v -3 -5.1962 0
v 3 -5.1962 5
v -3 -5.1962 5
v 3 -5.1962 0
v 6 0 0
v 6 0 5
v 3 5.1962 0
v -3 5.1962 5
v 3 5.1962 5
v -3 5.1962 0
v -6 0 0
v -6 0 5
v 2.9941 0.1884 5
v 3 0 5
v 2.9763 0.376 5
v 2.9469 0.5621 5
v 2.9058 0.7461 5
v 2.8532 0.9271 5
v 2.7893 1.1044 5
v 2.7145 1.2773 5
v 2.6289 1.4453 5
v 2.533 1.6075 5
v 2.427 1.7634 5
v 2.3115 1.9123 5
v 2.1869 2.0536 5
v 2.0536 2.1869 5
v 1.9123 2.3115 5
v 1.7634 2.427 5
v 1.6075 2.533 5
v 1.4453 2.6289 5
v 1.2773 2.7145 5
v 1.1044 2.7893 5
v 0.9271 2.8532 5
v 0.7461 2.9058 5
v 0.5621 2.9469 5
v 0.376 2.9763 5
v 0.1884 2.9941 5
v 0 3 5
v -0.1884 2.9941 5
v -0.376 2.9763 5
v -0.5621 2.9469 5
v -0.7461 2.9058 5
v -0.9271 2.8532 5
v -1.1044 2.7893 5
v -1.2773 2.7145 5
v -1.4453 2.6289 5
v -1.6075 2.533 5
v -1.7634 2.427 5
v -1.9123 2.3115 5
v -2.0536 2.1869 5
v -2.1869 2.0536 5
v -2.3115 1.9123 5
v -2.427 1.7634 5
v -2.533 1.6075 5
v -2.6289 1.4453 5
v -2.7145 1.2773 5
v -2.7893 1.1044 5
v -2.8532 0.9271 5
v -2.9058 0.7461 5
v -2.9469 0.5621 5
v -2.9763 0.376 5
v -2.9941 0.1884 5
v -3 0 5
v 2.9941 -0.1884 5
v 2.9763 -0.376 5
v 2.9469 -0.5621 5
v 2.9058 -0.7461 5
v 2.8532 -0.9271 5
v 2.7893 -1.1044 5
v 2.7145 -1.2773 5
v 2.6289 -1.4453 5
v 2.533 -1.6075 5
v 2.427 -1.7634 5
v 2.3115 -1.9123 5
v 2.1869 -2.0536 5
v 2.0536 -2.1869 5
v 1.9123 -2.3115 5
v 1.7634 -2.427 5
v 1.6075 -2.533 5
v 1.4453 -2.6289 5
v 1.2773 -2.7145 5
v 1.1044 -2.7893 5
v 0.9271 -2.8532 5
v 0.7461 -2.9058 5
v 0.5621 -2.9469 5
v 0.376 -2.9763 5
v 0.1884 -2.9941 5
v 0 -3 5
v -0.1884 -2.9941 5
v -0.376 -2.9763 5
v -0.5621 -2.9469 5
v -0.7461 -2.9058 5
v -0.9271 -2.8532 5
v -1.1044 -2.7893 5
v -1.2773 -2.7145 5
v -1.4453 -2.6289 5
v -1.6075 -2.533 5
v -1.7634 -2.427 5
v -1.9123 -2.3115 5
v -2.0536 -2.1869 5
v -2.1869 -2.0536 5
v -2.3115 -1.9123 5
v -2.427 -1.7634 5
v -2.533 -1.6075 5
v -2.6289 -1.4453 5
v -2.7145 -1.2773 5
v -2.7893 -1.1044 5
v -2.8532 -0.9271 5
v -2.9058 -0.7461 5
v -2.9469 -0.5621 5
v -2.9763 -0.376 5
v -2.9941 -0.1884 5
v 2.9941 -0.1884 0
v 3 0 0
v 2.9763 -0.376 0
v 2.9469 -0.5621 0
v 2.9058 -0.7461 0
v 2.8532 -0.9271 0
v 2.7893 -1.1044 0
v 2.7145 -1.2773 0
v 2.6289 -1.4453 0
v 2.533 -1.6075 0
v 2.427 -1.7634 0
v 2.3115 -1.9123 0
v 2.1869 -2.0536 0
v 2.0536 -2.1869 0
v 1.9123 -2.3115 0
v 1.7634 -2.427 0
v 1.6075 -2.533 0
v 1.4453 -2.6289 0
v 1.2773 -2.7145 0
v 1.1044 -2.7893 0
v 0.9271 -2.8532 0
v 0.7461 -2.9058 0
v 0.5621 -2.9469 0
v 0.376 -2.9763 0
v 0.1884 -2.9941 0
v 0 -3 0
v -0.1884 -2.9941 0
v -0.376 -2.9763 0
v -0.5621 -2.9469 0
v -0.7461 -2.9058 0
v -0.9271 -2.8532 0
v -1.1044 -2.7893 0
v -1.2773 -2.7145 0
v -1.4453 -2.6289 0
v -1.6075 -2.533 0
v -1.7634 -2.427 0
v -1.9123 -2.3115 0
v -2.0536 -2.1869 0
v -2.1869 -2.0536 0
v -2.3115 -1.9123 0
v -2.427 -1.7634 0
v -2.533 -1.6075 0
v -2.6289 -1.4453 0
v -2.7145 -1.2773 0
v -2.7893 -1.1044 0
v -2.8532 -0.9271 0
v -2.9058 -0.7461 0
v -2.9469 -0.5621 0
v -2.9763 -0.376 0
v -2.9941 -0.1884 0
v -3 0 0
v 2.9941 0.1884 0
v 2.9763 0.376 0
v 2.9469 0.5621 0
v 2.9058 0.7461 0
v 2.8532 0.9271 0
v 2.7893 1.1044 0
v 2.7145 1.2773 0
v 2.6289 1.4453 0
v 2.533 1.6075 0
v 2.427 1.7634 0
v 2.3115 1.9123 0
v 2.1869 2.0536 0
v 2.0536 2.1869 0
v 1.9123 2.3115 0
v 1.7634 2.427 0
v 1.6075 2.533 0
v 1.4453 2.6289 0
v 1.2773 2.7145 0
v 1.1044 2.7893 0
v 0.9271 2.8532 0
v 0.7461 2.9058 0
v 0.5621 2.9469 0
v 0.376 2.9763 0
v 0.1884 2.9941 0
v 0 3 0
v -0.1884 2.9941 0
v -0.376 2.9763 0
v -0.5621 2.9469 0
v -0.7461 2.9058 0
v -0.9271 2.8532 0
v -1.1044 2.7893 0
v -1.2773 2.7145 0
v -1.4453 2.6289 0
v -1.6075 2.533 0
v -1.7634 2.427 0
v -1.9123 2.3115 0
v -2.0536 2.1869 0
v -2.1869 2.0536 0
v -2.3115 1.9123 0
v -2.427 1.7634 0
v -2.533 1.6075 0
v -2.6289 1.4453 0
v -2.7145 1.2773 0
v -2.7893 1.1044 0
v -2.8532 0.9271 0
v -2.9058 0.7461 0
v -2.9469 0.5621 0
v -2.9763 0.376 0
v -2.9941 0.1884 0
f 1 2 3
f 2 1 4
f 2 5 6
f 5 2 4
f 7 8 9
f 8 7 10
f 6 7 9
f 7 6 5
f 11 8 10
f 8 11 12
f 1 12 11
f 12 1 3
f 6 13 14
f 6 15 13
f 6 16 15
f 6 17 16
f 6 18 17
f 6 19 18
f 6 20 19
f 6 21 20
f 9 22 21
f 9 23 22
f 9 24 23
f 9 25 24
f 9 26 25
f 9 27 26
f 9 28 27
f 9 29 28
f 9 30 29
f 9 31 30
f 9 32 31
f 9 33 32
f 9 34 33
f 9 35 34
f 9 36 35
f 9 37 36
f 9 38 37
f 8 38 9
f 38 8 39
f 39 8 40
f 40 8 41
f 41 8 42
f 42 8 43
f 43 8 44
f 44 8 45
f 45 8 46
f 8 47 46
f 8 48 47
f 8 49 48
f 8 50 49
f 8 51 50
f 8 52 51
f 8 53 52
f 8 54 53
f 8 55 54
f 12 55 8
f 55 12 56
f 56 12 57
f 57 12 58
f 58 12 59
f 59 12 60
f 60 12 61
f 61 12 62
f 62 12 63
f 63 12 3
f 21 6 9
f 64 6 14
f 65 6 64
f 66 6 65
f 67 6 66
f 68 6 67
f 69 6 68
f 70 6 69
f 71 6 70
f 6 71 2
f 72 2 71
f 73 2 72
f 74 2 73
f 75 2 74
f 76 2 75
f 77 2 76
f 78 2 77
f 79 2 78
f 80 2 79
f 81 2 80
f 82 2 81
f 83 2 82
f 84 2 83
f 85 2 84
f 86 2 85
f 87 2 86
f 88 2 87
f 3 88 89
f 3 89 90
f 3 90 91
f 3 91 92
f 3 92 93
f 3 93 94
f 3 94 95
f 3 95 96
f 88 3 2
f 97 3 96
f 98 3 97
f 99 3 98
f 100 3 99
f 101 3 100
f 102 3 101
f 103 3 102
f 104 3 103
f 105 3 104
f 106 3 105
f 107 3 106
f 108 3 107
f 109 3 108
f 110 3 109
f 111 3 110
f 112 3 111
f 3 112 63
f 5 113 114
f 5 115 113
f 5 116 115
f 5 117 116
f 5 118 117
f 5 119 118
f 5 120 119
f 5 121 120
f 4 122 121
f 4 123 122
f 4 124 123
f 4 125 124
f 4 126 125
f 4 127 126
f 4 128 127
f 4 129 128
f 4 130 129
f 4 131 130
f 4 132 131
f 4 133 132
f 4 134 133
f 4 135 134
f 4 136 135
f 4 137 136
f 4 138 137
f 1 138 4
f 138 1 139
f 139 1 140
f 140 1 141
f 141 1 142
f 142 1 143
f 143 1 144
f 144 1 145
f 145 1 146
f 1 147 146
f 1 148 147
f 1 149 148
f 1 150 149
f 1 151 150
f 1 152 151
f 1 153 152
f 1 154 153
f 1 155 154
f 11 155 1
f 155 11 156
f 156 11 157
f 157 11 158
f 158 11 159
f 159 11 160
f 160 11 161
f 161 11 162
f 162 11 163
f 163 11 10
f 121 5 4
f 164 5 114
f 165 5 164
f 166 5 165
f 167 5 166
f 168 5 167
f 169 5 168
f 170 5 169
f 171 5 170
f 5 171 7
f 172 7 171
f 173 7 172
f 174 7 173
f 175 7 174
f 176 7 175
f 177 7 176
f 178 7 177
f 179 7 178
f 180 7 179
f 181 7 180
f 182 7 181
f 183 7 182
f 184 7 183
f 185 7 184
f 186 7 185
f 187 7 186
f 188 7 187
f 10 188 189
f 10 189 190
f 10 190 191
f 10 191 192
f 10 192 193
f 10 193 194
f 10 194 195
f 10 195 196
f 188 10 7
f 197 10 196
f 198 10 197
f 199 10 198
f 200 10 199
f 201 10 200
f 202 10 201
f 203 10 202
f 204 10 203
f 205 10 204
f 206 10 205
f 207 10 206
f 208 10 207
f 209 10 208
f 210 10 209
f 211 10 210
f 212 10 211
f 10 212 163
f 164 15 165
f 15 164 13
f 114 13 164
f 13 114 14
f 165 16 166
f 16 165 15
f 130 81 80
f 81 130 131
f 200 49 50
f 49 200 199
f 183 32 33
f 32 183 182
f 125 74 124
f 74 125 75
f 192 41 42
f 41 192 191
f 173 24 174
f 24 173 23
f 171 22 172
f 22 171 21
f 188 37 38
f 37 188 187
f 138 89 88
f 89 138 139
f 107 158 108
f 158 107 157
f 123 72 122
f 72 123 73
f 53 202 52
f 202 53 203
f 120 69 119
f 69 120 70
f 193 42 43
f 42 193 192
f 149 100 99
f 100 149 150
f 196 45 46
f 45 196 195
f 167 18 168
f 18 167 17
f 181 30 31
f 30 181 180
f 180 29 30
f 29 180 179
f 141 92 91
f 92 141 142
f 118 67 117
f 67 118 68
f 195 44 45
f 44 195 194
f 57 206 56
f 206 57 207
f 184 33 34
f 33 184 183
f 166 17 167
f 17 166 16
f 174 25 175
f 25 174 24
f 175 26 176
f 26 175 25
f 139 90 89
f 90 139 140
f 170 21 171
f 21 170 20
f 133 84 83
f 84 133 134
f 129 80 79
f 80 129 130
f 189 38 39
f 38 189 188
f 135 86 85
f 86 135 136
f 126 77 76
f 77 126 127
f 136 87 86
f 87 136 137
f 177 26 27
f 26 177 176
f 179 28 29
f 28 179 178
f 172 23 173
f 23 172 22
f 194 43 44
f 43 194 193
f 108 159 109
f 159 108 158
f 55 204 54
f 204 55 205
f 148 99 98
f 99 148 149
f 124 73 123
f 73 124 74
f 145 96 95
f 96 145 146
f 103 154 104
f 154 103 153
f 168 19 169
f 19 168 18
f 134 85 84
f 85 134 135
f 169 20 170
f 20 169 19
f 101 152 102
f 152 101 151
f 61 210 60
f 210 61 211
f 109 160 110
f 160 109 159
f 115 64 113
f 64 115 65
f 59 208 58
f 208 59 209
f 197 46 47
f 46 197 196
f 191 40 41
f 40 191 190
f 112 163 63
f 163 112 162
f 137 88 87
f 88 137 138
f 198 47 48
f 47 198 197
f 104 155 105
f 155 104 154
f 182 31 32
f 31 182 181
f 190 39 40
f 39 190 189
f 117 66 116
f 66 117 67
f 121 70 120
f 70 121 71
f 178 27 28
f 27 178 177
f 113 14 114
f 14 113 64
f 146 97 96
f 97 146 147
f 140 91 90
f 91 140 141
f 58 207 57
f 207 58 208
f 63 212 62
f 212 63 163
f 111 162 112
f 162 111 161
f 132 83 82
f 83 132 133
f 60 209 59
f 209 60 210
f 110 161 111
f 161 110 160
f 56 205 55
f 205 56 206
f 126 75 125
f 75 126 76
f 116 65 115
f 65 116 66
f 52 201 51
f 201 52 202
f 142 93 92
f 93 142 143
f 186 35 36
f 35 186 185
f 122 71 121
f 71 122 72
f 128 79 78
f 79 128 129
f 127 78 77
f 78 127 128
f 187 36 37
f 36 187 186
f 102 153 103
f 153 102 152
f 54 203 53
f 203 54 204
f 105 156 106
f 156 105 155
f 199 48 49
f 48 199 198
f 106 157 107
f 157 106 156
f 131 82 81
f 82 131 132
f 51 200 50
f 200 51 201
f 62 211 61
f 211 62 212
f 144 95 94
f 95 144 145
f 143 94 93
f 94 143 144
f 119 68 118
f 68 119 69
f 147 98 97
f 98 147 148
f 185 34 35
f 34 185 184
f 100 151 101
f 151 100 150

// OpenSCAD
// Nut Component
module nut() {
    difference() {
        // Hexagonal outer shape
        cylinder(h = 5, r = 6, $fn = 6);
        // Cylindrical inner hole
        translate([0, 0, -1]) cylinder(h = 7, r = 3, $fn = 100);
    }
}

// Render the nut
nut();
